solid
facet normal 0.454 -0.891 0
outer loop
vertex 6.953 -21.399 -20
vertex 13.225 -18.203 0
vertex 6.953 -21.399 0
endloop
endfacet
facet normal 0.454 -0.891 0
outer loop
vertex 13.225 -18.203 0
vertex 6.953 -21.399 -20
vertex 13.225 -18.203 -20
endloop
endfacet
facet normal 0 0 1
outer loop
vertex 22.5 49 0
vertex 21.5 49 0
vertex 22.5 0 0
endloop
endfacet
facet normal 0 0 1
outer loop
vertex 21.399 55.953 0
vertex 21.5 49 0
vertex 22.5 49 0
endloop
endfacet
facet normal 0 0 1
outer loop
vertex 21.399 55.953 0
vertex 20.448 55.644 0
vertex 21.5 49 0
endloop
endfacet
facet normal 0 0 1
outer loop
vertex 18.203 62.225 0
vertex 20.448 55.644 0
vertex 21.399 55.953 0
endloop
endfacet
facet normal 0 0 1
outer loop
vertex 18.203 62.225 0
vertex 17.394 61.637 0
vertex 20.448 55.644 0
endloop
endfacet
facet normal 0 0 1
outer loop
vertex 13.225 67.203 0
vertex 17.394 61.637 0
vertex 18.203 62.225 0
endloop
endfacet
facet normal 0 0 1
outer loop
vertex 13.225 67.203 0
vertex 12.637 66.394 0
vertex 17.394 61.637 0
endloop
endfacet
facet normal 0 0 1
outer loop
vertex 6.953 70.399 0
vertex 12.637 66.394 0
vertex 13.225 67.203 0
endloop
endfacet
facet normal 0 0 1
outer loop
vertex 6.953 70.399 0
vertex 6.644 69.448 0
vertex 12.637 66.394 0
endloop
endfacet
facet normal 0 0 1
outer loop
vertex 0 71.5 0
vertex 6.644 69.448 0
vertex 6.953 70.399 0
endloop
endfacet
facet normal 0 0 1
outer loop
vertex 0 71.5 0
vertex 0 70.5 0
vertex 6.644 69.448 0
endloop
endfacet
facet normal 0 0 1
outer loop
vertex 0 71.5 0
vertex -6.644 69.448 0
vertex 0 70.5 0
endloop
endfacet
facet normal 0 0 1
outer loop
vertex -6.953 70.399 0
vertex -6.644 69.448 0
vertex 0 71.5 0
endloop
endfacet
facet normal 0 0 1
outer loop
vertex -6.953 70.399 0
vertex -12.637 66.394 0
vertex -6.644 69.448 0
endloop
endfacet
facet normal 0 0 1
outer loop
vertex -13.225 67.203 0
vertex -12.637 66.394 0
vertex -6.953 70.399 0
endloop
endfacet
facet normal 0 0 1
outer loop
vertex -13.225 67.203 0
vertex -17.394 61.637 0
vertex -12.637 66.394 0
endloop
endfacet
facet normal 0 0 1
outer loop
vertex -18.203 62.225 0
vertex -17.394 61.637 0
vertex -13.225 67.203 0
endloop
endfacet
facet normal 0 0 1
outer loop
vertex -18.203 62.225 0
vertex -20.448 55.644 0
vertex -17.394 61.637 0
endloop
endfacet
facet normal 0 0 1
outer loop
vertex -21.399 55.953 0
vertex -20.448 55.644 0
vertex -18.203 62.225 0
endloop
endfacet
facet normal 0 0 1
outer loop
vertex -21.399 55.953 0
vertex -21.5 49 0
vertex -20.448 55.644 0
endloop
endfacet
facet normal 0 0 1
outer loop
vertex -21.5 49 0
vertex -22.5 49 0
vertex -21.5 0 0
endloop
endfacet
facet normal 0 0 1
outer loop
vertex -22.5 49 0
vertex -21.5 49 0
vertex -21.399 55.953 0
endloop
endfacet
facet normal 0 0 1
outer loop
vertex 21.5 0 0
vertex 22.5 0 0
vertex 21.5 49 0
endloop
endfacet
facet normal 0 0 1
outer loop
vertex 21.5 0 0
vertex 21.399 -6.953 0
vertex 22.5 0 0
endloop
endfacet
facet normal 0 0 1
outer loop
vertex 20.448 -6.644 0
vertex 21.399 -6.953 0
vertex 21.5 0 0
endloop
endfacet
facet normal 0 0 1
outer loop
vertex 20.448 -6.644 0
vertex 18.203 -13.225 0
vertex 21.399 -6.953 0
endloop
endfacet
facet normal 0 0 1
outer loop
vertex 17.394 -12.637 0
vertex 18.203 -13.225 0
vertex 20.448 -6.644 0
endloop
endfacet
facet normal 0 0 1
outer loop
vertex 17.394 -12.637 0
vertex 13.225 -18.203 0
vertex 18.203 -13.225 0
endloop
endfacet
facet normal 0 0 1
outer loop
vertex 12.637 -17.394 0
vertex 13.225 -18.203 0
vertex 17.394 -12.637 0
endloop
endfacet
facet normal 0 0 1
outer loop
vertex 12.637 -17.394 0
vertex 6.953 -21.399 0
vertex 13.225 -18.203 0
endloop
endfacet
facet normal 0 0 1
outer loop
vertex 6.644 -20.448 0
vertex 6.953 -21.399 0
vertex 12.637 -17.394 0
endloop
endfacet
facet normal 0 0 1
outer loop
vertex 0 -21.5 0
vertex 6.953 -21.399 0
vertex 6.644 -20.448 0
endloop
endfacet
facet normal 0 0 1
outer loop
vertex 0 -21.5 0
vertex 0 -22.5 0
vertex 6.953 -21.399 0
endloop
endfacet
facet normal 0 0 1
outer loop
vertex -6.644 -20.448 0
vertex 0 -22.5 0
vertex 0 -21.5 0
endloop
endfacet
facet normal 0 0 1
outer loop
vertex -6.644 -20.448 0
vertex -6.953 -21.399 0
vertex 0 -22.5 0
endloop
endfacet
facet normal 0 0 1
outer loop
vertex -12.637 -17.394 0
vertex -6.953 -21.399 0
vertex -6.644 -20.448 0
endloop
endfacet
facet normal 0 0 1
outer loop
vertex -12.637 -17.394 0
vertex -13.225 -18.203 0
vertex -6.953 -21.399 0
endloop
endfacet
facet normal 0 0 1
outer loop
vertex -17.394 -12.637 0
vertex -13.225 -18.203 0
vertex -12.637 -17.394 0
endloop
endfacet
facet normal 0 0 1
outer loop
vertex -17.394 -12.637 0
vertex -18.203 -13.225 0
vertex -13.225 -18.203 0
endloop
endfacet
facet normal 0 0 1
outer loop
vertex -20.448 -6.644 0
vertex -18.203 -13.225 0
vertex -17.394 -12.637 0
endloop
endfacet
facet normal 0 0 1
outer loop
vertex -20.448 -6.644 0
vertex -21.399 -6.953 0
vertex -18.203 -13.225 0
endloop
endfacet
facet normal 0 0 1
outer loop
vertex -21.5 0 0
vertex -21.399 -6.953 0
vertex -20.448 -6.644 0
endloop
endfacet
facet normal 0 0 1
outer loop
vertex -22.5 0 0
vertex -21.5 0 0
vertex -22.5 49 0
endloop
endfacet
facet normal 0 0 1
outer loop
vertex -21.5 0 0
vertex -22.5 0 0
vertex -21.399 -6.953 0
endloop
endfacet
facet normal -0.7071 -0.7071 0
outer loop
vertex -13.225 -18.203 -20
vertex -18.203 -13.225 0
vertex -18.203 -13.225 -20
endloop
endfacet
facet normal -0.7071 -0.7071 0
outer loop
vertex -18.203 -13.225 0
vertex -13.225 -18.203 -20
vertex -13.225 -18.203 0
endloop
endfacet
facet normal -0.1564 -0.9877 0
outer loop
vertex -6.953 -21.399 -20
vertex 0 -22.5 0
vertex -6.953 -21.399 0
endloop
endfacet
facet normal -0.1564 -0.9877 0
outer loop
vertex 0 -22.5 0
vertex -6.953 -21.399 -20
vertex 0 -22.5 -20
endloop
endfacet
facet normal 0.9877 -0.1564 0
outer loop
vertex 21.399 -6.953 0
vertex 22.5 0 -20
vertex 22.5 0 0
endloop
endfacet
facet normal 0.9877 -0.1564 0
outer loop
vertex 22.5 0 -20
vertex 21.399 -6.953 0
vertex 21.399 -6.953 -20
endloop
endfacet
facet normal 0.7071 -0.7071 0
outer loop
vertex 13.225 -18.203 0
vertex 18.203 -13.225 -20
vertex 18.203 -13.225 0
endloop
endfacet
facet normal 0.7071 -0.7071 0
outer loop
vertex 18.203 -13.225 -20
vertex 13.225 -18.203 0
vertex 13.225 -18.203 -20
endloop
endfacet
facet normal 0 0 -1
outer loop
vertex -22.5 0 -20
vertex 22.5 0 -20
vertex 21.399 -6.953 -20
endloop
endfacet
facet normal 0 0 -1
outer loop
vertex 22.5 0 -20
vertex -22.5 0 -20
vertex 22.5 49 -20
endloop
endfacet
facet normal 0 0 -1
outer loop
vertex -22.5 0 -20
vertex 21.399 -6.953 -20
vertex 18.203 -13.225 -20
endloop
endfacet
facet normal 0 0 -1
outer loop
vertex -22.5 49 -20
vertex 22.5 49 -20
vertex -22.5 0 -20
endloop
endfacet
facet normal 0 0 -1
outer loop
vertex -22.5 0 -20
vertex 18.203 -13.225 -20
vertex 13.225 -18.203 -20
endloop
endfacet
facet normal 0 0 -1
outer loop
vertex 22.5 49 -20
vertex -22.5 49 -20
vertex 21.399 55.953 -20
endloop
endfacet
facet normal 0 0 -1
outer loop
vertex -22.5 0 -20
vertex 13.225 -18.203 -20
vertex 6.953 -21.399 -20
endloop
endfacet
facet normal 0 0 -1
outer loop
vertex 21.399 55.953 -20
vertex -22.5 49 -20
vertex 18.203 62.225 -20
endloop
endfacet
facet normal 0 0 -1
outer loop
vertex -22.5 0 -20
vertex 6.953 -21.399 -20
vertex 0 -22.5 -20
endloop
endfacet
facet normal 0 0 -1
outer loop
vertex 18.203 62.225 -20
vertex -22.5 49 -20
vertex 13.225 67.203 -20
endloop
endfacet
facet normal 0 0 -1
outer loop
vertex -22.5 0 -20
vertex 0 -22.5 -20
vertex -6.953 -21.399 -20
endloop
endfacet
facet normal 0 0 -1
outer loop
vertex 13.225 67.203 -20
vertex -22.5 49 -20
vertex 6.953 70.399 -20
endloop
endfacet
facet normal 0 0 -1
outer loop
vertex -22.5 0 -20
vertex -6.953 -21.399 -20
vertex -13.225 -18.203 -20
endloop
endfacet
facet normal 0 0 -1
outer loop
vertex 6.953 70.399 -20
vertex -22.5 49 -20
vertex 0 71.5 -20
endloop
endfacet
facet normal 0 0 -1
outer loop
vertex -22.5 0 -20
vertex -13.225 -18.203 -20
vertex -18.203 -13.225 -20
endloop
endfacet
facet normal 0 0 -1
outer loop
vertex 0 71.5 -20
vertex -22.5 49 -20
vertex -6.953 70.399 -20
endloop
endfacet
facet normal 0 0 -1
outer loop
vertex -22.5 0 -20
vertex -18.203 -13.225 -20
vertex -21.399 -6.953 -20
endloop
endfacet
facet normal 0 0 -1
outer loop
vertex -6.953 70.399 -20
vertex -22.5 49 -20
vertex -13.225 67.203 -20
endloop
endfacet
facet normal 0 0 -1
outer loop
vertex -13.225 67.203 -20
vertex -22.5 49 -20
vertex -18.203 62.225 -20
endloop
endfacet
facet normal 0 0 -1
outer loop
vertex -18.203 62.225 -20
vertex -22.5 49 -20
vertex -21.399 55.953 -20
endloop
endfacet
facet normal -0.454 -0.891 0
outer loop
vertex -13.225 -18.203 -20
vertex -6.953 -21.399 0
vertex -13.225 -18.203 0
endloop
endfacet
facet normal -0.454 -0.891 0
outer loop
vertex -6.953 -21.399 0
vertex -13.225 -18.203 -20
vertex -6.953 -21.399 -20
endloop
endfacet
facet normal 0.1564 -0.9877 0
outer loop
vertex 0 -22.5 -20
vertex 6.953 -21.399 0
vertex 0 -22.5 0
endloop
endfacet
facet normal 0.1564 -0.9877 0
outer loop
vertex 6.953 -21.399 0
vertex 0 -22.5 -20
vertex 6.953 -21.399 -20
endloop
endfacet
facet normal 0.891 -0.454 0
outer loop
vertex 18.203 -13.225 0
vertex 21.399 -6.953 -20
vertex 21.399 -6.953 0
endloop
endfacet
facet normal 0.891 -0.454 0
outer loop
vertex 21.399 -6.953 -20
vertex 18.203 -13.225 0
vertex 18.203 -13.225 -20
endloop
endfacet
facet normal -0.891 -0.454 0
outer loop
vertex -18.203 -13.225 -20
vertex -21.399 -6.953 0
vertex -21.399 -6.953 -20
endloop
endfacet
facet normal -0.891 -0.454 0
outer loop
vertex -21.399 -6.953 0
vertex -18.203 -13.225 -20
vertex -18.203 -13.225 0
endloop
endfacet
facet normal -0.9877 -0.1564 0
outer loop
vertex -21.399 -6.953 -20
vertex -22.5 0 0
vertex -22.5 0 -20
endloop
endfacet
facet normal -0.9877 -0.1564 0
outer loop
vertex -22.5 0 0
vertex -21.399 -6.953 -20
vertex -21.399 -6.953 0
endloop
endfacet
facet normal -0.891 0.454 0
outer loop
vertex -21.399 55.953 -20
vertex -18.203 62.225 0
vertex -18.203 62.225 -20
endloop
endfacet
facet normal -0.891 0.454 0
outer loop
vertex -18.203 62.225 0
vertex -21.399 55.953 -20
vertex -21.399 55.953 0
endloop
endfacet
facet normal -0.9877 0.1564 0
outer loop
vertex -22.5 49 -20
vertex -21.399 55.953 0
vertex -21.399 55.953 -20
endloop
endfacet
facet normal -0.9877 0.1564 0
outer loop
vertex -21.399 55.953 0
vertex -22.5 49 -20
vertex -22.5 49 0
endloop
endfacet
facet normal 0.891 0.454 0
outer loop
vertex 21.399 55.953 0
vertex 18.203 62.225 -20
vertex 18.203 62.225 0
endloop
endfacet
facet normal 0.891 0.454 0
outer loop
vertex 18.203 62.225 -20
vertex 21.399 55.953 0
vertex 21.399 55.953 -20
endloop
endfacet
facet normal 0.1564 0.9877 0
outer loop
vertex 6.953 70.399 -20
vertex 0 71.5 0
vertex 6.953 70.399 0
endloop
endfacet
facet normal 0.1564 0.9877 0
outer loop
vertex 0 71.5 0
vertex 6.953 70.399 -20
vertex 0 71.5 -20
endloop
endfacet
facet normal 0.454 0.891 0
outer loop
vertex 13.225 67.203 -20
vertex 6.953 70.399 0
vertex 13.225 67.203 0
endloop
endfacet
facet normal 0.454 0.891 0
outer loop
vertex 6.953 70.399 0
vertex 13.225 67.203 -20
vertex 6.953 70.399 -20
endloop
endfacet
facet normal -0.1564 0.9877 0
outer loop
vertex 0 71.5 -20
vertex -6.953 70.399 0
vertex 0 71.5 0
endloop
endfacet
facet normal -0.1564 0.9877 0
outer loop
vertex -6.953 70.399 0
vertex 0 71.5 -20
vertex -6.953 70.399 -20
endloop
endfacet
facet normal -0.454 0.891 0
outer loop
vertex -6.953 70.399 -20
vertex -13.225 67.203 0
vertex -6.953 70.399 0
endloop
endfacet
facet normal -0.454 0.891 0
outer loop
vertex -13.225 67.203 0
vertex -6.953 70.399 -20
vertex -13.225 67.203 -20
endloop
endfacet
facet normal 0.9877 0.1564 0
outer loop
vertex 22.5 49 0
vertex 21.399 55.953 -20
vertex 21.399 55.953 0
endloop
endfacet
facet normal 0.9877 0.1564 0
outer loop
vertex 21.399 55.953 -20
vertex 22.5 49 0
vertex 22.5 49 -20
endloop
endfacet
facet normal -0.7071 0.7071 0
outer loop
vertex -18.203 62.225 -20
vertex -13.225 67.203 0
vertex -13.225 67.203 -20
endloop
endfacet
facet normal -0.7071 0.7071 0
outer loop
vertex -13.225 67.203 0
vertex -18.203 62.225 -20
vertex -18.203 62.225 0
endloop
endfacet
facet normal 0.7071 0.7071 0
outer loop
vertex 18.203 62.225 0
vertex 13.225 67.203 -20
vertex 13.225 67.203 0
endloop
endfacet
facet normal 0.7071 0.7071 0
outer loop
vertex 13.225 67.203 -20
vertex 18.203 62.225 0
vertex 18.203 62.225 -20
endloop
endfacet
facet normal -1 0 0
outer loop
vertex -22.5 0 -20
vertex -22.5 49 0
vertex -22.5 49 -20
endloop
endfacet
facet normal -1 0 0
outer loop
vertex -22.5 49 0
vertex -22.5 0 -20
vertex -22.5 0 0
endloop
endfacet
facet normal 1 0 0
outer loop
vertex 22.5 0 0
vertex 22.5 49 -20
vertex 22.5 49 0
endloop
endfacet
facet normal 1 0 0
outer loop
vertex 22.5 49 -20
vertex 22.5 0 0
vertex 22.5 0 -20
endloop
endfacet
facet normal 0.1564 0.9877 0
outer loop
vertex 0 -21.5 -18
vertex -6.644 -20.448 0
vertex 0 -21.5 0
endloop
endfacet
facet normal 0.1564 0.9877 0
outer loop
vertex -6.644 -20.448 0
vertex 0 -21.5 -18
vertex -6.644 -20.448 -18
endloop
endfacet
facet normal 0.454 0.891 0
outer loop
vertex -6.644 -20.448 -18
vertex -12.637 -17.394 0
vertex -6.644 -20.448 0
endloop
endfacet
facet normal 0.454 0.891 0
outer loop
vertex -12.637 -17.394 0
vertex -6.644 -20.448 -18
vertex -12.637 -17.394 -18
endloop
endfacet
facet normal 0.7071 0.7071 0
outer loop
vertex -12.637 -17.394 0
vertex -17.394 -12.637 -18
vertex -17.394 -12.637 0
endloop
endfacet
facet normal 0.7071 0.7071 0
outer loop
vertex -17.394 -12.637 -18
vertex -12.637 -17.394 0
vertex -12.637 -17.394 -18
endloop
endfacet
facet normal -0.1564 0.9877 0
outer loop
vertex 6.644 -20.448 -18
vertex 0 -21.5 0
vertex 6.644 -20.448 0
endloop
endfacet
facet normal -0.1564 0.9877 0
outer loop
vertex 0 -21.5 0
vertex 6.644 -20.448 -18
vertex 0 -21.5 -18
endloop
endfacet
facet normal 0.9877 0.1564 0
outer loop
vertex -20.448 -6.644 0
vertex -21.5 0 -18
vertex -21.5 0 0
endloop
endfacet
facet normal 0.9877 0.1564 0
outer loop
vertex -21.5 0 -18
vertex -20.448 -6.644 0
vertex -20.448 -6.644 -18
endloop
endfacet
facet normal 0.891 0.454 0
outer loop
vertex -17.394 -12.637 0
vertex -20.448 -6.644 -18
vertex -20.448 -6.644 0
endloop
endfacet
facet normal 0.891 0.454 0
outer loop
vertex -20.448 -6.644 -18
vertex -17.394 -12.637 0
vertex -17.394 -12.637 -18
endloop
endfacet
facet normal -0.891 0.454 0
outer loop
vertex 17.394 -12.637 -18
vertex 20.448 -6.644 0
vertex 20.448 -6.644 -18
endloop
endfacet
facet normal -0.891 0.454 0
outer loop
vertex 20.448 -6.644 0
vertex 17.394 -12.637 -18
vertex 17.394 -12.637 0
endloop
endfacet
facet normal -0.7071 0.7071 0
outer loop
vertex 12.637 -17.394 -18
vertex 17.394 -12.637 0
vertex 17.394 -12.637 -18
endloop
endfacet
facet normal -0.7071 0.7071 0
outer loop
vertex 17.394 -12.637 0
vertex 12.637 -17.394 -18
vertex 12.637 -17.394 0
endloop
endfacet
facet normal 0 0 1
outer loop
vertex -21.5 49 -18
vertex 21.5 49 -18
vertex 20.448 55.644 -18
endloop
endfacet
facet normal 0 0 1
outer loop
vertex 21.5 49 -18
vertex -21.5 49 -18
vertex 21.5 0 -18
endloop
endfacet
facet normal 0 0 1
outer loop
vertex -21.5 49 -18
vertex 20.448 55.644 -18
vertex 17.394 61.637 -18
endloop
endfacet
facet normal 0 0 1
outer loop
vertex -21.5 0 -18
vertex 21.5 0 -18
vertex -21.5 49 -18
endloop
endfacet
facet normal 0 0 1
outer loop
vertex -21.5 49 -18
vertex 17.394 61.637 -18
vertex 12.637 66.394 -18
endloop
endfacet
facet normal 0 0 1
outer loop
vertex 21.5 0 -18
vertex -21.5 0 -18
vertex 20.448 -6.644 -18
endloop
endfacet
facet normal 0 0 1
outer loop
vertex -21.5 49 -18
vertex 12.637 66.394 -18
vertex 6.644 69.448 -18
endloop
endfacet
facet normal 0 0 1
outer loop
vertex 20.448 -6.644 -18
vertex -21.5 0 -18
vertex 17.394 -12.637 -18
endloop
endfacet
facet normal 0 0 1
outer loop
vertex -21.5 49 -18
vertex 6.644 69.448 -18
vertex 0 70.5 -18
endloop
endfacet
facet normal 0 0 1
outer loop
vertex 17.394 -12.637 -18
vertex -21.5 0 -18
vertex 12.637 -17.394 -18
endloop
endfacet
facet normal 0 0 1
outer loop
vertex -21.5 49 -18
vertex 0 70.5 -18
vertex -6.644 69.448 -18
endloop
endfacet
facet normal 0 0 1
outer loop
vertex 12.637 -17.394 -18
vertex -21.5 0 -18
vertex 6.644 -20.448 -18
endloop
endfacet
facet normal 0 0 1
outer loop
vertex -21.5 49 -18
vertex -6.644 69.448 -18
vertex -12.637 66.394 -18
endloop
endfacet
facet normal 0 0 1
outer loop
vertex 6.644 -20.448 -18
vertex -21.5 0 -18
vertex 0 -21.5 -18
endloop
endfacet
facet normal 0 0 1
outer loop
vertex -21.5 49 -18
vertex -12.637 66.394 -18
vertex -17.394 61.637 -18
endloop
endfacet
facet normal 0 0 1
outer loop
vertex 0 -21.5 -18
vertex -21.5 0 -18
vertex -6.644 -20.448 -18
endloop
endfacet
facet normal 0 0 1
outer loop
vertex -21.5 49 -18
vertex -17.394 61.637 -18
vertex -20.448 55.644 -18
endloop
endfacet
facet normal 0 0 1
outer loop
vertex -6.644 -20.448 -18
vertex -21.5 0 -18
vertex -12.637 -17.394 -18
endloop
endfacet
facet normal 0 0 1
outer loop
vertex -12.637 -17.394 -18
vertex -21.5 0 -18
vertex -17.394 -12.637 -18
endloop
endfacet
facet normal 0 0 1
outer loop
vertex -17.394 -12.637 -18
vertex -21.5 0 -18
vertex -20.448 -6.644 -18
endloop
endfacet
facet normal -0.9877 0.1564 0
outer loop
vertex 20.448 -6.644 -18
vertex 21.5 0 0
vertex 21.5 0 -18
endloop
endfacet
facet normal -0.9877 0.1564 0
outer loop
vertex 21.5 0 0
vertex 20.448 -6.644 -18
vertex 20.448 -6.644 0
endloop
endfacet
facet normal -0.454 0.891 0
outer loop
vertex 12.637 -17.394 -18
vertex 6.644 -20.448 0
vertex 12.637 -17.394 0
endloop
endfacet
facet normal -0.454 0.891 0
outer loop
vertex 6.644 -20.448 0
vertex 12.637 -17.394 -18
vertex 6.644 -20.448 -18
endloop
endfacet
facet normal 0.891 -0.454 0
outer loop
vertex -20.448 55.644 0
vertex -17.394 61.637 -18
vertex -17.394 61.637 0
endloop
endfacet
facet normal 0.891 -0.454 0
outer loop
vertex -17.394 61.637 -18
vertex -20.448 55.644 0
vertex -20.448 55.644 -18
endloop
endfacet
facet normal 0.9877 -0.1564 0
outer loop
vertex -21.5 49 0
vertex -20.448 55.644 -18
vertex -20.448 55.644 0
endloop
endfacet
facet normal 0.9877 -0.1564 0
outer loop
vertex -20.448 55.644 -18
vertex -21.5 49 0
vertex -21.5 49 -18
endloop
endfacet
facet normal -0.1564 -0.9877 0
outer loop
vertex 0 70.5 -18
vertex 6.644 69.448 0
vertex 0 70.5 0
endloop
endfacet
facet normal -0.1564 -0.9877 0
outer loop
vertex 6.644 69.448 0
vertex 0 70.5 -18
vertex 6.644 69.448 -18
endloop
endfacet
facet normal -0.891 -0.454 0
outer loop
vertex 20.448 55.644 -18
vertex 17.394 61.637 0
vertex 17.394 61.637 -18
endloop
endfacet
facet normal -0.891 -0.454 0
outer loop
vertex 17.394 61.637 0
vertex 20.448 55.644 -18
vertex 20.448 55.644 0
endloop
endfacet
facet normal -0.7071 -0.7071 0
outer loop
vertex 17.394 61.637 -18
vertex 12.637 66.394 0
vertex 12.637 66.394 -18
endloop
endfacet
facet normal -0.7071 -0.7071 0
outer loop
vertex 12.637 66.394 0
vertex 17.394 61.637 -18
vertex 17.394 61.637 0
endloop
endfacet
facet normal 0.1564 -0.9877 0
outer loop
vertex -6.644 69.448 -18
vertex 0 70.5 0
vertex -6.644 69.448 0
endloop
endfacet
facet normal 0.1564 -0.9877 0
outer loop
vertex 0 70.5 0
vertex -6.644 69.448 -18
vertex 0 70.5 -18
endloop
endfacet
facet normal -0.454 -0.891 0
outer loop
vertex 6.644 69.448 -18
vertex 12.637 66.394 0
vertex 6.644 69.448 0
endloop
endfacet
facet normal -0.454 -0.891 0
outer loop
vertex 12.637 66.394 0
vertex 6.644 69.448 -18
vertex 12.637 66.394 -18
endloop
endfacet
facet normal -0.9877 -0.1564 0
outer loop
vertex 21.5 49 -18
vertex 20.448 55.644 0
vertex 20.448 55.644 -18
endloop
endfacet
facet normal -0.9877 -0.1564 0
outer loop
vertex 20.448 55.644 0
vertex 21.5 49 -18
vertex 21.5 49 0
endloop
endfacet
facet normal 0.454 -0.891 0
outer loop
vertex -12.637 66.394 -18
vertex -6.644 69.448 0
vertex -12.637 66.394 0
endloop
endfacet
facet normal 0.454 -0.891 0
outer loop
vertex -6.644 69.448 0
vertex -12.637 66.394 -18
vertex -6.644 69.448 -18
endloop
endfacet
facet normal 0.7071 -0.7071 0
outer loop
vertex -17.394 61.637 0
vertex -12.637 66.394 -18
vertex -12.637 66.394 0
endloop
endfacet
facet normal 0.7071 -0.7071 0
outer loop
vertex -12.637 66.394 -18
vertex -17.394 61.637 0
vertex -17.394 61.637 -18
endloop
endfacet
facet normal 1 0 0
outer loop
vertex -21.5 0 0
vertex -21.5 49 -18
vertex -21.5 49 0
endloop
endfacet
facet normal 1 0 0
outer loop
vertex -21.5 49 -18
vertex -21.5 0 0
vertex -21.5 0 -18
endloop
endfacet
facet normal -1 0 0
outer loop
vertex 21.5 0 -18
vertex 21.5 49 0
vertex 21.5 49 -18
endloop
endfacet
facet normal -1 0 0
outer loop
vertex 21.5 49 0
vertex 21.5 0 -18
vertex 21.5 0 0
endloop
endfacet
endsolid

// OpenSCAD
okularDiameter   = 43;
okularDistance   = 92;
okularDepth      = 18;
materialThickness = 1;
$fn=20;

// use <fillets3d.scad>

module inner() {
    union() {
        cylinder(okularDepth,d=okularDiameter);
        translate([0,okularDistance-2*okularDiameter/2,0])
            cylinder(okularDepth,d=okularDiameter);
        translate([-okularDiameter/2,0,0])    
            cube([okularDiameter, okularDistance-2*okularDiameter/2,okularDepth]);
    }
}

module outer() {
    translate(0,0,-materialThickness) {
        union() {
            cylinder(okularDepth+2*materialThickness,
                     d=okularDiameter+2*materialThickness);
            translate([0,okularDistance-2*okularDiameter/2,0])
                cylinder(okularDepth+2*materialThickness,
                         d=okularDiameter+2*materialThickness);
            translate([-okularDiameter/2-materialThickness,0,0])    
                cube([okularDiameter+2*materialThickness,
                      okularDistance-2*okularDiameter/2,
                      okularDepth+2*materialThickness]);
        }
    }    

}

rotate([0,180,0]) 
// topBottomFillet(0,okularDepth,1,20,1)
difference() {
    outer();
    inner();
}
